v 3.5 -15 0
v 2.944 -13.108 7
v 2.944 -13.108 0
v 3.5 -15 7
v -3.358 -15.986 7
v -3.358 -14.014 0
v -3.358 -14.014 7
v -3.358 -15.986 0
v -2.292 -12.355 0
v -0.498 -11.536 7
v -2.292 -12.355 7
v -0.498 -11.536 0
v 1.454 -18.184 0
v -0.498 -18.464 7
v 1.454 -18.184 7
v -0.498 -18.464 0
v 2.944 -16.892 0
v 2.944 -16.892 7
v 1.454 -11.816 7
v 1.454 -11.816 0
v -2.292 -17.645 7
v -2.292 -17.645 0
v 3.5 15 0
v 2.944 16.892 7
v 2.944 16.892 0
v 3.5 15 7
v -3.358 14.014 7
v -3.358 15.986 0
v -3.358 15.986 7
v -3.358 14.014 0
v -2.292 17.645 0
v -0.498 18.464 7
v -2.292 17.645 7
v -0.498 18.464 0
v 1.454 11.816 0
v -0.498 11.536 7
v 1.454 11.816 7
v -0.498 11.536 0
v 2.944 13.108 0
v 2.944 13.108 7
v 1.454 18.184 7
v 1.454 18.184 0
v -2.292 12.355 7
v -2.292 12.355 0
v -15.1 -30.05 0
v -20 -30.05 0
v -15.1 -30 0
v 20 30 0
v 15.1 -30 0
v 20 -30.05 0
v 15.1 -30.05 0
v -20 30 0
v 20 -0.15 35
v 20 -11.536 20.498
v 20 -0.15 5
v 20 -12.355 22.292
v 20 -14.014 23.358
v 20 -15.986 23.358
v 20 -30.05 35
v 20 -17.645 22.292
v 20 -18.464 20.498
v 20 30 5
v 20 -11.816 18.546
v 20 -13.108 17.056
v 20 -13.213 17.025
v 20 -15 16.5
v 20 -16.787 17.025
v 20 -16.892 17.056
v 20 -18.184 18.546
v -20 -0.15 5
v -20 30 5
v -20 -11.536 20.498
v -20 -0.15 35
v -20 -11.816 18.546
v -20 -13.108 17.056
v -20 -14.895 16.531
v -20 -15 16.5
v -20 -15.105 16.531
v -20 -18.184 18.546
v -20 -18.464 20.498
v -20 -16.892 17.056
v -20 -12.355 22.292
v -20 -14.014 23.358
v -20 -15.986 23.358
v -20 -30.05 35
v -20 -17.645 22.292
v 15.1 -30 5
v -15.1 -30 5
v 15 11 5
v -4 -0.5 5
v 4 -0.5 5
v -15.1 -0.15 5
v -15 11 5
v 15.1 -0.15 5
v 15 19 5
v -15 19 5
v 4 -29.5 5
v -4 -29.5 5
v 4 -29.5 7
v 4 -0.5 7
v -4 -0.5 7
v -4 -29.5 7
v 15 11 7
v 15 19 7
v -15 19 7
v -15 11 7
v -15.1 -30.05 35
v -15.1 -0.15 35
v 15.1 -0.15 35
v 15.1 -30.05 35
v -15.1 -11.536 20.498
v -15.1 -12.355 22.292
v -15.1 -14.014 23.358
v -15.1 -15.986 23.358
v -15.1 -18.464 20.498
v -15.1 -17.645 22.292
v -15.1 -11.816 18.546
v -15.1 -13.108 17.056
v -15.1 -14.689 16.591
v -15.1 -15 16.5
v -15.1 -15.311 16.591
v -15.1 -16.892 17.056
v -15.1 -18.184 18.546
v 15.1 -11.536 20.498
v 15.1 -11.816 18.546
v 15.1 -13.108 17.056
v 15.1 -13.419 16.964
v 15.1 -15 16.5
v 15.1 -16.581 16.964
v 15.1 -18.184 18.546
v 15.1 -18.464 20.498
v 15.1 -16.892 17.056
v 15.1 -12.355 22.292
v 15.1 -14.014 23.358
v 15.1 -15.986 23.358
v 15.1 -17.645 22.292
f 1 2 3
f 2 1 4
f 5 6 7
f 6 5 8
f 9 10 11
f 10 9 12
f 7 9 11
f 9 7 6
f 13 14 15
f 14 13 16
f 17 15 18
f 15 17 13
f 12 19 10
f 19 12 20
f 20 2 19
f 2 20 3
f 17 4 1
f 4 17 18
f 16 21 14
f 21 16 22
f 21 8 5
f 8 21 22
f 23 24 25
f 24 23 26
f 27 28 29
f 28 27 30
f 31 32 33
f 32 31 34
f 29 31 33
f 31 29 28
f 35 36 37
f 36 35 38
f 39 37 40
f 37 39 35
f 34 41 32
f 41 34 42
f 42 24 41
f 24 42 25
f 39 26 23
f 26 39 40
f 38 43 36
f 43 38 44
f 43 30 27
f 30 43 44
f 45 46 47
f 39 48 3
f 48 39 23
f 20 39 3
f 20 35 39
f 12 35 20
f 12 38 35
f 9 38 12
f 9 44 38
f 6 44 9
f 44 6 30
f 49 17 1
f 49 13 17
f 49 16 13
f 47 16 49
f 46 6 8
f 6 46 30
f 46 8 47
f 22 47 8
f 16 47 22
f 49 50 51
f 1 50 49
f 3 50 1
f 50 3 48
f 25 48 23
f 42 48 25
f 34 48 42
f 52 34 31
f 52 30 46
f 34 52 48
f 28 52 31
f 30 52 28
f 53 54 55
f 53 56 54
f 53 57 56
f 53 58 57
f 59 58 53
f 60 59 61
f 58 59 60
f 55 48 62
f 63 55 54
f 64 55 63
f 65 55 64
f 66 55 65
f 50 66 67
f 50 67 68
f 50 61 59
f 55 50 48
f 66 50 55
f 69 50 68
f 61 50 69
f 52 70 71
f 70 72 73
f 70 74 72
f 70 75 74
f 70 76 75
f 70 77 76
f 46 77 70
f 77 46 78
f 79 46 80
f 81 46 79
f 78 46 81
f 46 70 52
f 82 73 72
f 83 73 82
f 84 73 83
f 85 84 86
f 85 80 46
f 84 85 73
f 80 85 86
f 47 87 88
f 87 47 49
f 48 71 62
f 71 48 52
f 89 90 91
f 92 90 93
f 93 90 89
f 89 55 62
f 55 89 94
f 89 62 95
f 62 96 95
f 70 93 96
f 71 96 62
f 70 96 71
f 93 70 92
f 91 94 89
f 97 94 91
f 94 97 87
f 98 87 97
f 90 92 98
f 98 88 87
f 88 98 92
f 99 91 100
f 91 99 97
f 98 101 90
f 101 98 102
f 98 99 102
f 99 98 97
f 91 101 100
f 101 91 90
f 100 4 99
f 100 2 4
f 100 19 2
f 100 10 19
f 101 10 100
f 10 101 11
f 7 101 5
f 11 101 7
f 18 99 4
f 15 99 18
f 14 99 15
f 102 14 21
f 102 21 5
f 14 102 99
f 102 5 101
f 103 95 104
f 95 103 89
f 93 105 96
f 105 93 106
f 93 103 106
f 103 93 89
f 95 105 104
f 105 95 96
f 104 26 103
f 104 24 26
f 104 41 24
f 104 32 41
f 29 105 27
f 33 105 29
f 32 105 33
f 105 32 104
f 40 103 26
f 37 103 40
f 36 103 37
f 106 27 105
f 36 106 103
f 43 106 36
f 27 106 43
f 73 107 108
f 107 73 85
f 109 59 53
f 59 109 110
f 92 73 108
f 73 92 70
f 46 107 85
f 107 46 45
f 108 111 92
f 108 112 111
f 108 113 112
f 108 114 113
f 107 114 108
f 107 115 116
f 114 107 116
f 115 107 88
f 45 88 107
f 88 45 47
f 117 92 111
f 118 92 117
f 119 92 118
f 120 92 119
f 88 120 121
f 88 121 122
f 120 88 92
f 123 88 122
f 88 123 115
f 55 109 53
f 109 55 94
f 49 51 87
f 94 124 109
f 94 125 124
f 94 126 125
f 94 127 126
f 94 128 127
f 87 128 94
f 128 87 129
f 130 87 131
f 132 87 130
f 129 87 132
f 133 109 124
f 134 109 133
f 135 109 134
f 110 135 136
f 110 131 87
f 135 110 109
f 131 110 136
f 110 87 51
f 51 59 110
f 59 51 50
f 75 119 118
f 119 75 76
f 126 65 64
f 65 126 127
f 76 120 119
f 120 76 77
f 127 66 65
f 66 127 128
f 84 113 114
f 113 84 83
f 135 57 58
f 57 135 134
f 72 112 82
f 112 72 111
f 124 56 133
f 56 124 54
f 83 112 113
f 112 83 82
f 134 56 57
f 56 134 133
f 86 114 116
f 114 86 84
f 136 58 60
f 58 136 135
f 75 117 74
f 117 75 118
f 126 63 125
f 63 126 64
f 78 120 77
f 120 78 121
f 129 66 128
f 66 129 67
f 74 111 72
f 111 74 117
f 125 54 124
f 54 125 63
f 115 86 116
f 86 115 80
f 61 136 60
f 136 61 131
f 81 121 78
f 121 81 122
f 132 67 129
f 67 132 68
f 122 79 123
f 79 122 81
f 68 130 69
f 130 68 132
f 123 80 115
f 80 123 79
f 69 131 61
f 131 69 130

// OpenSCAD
drazka=8;
m6_dira=7;



module spojka(){
    difference(){
        union(){
            linear_extrude(height=5)
                square([40,60],center=true);
            linear_extrude(height=7)
                translate([0,-15])
                    square([drazka,30-1],center=true);
            linear_extrude(height=7)
                translate([0,15])
                    square([30,drazka],center=true);
            linear_extrude(height=35)
                translate([0,-15.1,0])
                    difference(){
                        square([40,30-0.1],center=true);
                        square([30+0.2,30],center=true);
                    }
            
        }
        for(a=[-15:30:15]){
            translate([0,a,-1])
                cylinder(d=m6_dira,h=9);
        }
        translate([0,-15,15+5])
            rotate([0,90,0])
                cylinder(d=m6_dira,h=45,center=true);
    }
}

spojka();
